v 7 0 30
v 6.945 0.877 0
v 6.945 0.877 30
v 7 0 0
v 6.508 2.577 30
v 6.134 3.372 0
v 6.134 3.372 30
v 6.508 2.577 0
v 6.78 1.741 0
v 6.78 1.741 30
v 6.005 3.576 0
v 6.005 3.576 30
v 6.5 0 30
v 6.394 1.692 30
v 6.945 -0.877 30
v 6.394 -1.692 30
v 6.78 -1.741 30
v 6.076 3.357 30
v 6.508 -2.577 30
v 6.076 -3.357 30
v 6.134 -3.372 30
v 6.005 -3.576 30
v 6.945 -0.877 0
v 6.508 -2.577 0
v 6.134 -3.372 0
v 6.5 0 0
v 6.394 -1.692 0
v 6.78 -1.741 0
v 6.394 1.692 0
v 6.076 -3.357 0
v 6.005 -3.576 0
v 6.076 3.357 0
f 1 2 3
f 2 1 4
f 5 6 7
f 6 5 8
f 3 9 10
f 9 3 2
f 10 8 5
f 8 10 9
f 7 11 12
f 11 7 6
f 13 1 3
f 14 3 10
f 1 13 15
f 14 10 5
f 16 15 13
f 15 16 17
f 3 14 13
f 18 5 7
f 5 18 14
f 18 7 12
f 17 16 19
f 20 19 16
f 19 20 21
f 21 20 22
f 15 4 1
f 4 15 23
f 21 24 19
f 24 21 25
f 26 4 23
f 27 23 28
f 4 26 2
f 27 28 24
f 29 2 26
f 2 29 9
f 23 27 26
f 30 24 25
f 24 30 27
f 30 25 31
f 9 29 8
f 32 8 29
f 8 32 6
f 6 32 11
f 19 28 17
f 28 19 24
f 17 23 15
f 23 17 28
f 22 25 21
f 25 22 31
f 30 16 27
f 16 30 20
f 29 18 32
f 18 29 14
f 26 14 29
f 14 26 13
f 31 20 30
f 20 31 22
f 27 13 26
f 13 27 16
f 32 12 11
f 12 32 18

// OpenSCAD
$fn = 50;


difference() {
	union() {
		cylinder(h = 30, r = 7.0000000000);
		translate(v = [-10.0000000000, 0, 0]) {
			cylinder(h = 30, r = 7.0000000000);
		}
	}
	union() {
		cylinder(h = 30, r = 3.2500000000);
		cylinder(h = 30, r = 1.8000000000);
		cylinder(h = 30, r = 1.8000000000);
		cylinder(h = 30, r = 1.8000000000);
		translate(v = [-14.5000000000, 0, 0]) {
			hull() {
				translate(v = [-3.7500000000, 0.0000000000, 0]) {
					cylinder(h = 30, r = 10.5000000000);
				}
				translate(v = [3.7500000000, 0.0000000000, 0]) {
					cylinder(h = 30, r = 10.5000000000);
				}
				translate(v = [-3.7500000000, -0.0000000000, 0]) {
					cylinder(h = 30, r = 10.5000000000);
				}
				translate(v = [3.7500000000, -0.0000000000, 0]) {
					cylinder(h = 30, r = 10.5000000000);
				}
			}
		}
		translate(v = [-7.0000000000, 0, 0.0000000000]) {
			cylinder(h = 30, r = 13.5000000000);
		}
	}
}
